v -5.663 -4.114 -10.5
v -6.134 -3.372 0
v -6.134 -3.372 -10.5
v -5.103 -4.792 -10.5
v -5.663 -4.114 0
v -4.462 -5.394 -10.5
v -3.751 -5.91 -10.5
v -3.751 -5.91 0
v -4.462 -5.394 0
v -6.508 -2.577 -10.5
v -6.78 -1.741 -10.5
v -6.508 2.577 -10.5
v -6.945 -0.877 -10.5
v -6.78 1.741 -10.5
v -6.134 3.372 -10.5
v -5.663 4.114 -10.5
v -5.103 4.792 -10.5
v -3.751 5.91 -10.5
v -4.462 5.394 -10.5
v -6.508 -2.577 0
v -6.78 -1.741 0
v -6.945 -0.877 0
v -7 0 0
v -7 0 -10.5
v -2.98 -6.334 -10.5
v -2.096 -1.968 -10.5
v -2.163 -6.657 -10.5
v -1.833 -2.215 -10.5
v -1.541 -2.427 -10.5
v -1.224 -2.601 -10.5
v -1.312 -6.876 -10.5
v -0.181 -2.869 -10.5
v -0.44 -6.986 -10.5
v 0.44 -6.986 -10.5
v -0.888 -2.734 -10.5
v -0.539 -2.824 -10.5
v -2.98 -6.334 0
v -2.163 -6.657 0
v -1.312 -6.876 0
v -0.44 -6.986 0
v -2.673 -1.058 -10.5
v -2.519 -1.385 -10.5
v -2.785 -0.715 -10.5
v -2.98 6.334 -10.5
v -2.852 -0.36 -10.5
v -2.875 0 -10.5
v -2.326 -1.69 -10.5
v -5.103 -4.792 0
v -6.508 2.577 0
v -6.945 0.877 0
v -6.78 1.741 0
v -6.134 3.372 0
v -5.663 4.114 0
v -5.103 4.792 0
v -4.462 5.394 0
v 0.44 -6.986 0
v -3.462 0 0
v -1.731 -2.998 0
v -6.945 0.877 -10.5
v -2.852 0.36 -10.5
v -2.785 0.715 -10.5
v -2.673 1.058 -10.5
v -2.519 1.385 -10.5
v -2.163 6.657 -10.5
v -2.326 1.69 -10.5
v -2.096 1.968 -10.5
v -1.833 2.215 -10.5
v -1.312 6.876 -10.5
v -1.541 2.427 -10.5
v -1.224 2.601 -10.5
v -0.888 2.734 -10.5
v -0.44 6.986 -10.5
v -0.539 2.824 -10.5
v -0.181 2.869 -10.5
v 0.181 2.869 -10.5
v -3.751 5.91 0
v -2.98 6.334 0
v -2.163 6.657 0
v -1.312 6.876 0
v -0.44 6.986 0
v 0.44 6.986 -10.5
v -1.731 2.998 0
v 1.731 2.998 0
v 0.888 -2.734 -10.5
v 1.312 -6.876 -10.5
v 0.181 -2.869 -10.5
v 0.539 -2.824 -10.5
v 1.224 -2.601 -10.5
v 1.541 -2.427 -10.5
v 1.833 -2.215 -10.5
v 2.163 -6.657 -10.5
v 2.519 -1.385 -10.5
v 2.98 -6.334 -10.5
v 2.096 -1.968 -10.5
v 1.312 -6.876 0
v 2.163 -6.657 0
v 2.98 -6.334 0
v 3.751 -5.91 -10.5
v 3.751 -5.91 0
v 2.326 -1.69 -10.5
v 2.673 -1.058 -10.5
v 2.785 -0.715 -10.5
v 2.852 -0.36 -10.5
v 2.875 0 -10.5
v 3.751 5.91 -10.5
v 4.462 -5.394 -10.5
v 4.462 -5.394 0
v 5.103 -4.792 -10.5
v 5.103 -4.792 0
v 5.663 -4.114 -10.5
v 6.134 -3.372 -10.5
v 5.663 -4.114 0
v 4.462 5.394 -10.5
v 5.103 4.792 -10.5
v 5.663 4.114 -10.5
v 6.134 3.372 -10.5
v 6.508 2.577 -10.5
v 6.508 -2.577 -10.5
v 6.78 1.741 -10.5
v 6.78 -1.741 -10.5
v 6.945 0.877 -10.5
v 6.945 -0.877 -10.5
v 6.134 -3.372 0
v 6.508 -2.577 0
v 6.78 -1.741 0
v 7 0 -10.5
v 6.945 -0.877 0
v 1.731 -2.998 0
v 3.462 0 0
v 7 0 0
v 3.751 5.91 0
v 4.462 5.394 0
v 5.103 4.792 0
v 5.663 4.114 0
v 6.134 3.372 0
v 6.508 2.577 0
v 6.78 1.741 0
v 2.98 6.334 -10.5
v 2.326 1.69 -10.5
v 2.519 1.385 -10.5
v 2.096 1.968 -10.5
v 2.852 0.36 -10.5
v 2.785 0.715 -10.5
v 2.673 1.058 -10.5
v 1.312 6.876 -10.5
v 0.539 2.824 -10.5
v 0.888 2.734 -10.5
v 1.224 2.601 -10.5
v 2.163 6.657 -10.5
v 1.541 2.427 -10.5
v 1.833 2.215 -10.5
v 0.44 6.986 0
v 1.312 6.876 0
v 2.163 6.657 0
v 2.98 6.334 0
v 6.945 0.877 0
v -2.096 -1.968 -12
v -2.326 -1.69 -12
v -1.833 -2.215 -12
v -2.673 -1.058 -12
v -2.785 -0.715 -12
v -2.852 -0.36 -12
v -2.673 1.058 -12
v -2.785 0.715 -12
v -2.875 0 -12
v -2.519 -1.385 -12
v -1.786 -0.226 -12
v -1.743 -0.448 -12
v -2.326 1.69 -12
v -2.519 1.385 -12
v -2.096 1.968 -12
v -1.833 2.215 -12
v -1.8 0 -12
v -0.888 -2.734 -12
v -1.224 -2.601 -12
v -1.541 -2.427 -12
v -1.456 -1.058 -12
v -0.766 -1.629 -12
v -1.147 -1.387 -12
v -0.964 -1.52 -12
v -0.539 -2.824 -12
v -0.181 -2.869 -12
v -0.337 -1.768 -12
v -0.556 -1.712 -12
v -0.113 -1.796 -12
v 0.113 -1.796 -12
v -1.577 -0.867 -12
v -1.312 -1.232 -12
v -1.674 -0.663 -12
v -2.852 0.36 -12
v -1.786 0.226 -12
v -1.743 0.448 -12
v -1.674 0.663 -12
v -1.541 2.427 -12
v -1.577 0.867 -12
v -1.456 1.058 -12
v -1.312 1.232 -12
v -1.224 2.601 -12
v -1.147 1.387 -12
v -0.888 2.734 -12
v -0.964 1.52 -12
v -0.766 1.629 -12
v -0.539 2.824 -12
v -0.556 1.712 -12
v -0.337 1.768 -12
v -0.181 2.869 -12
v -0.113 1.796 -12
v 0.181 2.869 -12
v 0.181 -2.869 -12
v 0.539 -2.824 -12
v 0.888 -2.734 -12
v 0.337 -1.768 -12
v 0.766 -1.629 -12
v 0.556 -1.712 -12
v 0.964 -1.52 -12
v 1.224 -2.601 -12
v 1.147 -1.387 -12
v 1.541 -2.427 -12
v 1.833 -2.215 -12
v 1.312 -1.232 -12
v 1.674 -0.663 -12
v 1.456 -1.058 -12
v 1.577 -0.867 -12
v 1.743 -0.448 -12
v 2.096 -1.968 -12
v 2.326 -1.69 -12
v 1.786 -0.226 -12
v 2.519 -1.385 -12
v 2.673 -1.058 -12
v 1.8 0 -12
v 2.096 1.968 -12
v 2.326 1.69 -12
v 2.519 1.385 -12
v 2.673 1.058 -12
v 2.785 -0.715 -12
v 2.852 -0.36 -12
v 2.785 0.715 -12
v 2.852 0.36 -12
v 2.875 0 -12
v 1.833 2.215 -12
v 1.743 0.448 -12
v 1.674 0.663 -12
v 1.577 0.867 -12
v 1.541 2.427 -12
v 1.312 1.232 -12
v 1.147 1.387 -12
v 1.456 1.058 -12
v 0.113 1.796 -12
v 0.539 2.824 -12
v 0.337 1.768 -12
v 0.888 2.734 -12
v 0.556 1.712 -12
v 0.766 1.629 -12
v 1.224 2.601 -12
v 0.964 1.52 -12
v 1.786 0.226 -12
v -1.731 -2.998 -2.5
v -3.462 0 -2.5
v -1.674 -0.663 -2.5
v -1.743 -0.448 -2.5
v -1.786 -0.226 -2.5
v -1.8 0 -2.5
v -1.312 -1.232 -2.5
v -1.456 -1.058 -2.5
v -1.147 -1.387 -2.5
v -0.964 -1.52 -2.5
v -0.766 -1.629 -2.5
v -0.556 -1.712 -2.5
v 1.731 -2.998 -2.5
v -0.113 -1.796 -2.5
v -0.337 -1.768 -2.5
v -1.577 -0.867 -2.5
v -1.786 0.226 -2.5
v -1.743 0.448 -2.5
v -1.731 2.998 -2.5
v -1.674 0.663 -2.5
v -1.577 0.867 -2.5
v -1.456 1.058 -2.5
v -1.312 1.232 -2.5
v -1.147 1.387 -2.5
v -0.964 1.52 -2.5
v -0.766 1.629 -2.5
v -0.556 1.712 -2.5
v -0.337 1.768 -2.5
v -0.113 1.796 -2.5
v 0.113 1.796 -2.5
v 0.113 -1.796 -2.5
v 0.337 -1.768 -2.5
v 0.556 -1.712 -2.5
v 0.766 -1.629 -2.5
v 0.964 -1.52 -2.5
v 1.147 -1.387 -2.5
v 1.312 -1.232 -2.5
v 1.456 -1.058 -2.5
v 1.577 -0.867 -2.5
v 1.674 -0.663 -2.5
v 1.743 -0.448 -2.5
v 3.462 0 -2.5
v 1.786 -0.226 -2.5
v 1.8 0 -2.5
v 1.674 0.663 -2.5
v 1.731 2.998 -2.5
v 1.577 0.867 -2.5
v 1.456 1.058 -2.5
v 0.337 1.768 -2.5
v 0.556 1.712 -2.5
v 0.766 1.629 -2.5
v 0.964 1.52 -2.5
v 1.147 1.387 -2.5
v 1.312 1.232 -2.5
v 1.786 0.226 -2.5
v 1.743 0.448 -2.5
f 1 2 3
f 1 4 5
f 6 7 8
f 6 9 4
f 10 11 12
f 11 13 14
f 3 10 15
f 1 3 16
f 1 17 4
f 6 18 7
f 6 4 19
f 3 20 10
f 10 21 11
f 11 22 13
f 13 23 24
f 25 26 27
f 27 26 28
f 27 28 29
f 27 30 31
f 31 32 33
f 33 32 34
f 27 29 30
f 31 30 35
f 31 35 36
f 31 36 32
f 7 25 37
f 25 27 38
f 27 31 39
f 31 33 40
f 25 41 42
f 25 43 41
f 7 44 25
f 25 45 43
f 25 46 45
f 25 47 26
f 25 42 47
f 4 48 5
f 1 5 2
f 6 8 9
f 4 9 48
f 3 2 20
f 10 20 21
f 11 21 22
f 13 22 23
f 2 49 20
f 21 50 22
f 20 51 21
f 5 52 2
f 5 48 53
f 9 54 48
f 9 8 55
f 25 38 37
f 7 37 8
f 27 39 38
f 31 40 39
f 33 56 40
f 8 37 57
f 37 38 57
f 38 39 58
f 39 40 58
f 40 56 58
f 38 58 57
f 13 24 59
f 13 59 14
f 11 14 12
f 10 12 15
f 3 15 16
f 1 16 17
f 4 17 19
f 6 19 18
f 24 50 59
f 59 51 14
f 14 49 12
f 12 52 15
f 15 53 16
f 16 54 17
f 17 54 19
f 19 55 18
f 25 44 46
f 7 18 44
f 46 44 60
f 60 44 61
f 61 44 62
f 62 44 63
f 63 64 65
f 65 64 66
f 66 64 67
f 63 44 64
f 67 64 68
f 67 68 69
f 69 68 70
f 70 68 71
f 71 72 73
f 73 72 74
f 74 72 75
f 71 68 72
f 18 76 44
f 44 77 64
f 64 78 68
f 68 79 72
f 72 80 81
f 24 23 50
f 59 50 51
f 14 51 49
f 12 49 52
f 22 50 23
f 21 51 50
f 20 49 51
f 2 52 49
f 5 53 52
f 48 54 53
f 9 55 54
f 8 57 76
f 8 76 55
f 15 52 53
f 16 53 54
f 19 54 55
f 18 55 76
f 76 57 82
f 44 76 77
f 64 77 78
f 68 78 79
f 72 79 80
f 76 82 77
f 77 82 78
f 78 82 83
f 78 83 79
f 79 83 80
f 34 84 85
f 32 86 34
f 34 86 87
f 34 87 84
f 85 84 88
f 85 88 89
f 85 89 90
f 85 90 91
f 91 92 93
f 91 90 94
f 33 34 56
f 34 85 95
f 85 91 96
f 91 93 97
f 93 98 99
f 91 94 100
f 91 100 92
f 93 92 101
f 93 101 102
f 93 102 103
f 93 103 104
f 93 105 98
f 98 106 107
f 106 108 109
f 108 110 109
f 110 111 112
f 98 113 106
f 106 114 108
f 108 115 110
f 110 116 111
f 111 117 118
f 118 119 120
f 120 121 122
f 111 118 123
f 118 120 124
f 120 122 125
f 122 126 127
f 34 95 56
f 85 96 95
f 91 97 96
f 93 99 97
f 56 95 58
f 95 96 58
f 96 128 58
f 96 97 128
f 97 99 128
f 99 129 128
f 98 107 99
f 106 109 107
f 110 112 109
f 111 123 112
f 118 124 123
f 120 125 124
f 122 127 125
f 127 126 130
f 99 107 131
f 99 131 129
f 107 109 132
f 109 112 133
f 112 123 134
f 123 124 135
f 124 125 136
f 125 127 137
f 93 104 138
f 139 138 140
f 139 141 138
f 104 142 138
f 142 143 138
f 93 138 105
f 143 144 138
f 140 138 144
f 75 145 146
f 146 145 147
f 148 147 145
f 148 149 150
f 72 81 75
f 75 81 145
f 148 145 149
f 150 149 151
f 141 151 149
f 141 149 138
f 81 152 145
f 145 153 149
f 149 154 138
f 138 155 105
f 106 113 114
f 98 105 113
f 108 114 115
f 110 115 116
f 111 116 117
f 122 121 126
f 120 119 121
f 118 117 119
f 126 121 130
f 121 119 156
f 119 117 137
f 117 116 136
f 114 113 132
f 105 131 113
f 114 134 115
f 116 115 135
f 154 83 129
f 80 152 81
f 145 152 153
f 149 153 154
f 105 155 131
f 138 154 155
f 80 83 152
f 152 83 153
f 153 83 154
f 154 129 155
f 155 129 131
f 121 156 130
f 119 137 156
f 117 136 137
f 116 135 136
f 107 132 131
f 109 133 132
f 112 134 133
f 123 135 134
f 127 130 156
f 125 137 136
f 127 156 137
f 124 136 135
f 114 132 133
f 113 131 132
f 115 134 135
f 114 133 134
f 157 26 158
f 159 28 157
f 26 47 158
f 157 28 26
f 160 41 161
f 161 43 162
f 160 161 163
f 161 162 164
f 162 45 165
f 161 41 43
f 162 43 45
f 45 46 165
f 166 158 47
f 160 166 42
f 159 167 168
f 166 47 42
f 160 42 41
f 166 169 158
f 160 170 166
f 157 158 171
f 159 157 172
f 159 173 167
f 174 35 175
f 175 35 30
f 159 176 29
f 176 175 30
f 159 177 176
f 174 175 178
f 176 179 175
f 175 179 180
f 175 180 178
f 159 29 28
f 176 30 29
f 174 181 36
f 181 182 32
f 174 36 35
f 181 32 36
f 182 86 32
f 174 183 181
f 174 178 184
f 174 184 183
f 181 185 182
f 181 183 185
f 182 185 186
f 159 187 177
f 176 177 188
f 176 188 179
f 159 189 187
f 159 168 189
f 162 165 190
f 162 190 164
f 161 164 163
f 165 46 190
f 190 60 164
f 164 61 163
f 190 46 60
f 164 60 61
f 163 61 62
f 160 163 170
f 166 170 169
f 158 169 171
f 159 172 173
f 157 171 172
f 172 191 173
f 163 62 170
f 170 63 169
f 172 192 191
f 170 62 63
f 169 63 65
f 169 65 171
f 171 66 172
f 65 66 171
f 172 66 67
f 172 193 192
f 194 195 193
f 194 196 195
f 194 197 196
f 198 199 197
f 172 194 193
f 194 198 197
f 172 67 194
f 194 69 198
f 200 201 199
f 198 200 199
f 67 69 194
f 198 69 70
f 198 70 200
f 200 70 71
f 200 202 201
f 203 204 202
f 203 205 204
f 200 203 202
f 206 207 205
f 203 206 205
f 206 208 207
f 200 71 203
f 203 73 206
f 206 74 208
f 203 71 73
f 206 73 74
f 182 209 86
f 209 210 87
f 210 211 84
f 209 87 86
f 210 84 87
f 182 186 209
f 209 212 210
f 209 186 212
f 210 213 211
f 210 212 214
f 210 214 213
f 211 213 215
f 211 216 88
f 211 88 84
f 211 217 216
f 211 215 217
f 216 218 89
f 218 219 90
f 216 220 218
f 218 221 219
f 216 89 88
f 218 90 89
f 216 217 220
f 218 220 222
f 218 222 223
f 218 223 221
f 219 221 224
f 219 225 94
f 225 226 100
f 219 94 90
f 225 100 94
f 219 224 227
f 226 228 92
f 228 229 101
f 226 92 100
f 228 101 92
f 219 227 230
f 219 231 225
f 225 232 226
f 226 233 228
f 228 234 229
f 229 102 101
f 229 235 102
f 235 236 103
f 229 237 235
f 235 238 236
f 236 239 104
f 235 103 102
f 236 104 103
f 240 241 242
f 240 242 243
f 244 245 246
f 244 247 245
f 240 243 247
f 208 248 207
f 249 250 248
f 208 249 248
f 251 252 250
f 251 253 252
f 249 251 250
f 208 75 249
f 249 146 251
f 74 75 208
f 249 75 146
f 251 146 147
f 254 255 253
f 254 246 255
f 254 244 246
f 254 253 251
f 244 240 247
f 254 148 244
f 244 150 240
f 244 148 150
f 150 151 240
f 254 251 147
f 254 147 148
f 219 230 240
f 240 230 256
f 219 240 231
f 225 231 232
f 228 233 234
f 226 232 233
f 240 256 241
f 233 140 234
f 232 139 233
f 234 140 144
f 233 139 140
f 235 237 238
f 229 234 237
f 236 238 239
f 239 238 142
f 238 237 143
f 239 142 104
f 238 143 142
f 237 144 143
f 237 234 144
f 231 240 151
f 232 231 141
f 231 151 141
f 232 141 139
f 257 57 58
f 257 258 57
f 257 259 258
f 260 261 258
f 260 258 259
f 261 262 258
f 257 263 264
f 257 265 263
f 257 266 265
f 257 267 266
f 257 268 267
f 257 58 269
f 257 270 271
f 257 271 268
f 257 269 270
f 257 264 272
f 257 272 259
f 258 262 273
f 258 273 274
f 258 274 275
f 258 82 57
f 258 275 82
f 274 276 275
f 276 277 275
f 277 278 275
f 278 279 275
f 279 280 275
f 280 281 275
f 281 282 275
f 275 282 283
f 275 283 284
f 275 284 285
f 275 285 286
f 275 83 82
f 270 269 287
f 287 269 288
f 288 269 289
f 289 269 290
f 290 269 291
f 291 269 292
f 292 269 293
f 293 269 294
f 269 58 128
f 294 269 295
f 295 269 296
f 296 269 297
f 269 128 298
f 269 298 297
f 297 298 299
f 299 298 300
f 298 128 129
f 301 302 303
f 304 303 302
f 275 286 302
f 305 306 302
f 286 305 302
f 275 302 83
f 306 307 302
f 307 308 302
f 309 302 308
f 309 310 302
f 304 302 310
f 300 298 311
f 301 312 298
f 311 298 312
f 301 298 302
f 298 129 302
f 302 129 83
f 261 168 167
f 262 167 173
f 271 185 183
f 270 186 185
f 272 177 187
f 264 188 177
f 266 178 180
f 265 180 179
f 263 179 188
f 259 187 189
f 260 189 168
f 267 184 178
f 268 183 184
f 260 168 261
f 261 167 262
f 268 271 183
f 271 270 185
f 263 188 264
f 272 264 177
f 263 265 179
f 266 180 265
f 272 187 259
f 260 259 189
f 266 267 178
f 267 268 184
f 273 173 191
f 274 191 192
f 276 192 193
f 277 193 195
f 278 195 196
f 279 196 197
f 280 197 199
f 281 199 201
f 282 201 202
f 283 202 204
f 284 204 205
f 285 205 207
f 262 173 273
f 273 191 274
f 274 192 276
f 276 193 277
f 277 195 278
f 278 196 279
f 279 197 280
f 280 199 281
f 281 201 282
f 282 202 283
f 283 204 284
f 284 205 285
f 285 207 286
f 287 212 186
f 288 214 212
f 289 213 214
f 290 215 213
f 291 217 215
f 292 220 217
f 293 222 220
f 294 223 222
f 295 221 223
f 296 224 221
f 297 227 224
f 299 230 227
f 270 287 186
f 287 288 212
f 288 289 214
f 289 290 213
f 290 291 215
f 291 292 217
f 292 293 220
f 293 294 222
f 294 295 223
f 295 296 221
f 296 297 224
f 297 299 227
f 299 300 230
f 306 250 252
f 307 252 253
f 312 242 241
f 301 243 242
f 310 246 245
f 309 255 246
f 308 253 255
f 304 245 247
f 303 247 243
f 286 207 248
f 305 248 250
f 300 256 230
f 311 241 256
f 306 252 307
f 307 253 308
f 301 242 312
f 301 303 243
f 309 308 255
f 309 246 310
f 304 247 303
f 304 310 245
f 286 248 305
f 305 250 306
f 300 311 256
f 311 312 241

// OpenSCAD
$fn = 50;


difference() {
	union() {
		translate(v = [0, 0, -10.5000000000]) {
			cylinder(h = 10.5000000000, r = 7.0000000000);
		}
		#translate(v = [0, 0, -12.0000000000]) {
			cylinder(h = 12, r = 2.8750000000);
		}
	}
	union() {
		translate(v = [0, 0, 0]) {
			rotate(a = [0, 0, 0]) {
				difference() {
					union() {
						translate(v = [0, 0, -2.5000000000]) {
							linear_extrude(height = 2.5000000000) {
								polygon(points = [[3.4620000000, 0.0000000000], [1.7310000000, 2.9981799479], [-1.7310000000, 2.9981799479], [-3.4620000000, 0.0000000000], [-1.7310000000, -2.9981799479], [1.7310000000, -2.9981799479]]);
							}
						}
					}
					union();
				}
			}
		}
		#translate(v = [0, 0, -100.0000000000]) {
			cylinder(h = 200, r = 1.8000000000);
		}
	}
}
